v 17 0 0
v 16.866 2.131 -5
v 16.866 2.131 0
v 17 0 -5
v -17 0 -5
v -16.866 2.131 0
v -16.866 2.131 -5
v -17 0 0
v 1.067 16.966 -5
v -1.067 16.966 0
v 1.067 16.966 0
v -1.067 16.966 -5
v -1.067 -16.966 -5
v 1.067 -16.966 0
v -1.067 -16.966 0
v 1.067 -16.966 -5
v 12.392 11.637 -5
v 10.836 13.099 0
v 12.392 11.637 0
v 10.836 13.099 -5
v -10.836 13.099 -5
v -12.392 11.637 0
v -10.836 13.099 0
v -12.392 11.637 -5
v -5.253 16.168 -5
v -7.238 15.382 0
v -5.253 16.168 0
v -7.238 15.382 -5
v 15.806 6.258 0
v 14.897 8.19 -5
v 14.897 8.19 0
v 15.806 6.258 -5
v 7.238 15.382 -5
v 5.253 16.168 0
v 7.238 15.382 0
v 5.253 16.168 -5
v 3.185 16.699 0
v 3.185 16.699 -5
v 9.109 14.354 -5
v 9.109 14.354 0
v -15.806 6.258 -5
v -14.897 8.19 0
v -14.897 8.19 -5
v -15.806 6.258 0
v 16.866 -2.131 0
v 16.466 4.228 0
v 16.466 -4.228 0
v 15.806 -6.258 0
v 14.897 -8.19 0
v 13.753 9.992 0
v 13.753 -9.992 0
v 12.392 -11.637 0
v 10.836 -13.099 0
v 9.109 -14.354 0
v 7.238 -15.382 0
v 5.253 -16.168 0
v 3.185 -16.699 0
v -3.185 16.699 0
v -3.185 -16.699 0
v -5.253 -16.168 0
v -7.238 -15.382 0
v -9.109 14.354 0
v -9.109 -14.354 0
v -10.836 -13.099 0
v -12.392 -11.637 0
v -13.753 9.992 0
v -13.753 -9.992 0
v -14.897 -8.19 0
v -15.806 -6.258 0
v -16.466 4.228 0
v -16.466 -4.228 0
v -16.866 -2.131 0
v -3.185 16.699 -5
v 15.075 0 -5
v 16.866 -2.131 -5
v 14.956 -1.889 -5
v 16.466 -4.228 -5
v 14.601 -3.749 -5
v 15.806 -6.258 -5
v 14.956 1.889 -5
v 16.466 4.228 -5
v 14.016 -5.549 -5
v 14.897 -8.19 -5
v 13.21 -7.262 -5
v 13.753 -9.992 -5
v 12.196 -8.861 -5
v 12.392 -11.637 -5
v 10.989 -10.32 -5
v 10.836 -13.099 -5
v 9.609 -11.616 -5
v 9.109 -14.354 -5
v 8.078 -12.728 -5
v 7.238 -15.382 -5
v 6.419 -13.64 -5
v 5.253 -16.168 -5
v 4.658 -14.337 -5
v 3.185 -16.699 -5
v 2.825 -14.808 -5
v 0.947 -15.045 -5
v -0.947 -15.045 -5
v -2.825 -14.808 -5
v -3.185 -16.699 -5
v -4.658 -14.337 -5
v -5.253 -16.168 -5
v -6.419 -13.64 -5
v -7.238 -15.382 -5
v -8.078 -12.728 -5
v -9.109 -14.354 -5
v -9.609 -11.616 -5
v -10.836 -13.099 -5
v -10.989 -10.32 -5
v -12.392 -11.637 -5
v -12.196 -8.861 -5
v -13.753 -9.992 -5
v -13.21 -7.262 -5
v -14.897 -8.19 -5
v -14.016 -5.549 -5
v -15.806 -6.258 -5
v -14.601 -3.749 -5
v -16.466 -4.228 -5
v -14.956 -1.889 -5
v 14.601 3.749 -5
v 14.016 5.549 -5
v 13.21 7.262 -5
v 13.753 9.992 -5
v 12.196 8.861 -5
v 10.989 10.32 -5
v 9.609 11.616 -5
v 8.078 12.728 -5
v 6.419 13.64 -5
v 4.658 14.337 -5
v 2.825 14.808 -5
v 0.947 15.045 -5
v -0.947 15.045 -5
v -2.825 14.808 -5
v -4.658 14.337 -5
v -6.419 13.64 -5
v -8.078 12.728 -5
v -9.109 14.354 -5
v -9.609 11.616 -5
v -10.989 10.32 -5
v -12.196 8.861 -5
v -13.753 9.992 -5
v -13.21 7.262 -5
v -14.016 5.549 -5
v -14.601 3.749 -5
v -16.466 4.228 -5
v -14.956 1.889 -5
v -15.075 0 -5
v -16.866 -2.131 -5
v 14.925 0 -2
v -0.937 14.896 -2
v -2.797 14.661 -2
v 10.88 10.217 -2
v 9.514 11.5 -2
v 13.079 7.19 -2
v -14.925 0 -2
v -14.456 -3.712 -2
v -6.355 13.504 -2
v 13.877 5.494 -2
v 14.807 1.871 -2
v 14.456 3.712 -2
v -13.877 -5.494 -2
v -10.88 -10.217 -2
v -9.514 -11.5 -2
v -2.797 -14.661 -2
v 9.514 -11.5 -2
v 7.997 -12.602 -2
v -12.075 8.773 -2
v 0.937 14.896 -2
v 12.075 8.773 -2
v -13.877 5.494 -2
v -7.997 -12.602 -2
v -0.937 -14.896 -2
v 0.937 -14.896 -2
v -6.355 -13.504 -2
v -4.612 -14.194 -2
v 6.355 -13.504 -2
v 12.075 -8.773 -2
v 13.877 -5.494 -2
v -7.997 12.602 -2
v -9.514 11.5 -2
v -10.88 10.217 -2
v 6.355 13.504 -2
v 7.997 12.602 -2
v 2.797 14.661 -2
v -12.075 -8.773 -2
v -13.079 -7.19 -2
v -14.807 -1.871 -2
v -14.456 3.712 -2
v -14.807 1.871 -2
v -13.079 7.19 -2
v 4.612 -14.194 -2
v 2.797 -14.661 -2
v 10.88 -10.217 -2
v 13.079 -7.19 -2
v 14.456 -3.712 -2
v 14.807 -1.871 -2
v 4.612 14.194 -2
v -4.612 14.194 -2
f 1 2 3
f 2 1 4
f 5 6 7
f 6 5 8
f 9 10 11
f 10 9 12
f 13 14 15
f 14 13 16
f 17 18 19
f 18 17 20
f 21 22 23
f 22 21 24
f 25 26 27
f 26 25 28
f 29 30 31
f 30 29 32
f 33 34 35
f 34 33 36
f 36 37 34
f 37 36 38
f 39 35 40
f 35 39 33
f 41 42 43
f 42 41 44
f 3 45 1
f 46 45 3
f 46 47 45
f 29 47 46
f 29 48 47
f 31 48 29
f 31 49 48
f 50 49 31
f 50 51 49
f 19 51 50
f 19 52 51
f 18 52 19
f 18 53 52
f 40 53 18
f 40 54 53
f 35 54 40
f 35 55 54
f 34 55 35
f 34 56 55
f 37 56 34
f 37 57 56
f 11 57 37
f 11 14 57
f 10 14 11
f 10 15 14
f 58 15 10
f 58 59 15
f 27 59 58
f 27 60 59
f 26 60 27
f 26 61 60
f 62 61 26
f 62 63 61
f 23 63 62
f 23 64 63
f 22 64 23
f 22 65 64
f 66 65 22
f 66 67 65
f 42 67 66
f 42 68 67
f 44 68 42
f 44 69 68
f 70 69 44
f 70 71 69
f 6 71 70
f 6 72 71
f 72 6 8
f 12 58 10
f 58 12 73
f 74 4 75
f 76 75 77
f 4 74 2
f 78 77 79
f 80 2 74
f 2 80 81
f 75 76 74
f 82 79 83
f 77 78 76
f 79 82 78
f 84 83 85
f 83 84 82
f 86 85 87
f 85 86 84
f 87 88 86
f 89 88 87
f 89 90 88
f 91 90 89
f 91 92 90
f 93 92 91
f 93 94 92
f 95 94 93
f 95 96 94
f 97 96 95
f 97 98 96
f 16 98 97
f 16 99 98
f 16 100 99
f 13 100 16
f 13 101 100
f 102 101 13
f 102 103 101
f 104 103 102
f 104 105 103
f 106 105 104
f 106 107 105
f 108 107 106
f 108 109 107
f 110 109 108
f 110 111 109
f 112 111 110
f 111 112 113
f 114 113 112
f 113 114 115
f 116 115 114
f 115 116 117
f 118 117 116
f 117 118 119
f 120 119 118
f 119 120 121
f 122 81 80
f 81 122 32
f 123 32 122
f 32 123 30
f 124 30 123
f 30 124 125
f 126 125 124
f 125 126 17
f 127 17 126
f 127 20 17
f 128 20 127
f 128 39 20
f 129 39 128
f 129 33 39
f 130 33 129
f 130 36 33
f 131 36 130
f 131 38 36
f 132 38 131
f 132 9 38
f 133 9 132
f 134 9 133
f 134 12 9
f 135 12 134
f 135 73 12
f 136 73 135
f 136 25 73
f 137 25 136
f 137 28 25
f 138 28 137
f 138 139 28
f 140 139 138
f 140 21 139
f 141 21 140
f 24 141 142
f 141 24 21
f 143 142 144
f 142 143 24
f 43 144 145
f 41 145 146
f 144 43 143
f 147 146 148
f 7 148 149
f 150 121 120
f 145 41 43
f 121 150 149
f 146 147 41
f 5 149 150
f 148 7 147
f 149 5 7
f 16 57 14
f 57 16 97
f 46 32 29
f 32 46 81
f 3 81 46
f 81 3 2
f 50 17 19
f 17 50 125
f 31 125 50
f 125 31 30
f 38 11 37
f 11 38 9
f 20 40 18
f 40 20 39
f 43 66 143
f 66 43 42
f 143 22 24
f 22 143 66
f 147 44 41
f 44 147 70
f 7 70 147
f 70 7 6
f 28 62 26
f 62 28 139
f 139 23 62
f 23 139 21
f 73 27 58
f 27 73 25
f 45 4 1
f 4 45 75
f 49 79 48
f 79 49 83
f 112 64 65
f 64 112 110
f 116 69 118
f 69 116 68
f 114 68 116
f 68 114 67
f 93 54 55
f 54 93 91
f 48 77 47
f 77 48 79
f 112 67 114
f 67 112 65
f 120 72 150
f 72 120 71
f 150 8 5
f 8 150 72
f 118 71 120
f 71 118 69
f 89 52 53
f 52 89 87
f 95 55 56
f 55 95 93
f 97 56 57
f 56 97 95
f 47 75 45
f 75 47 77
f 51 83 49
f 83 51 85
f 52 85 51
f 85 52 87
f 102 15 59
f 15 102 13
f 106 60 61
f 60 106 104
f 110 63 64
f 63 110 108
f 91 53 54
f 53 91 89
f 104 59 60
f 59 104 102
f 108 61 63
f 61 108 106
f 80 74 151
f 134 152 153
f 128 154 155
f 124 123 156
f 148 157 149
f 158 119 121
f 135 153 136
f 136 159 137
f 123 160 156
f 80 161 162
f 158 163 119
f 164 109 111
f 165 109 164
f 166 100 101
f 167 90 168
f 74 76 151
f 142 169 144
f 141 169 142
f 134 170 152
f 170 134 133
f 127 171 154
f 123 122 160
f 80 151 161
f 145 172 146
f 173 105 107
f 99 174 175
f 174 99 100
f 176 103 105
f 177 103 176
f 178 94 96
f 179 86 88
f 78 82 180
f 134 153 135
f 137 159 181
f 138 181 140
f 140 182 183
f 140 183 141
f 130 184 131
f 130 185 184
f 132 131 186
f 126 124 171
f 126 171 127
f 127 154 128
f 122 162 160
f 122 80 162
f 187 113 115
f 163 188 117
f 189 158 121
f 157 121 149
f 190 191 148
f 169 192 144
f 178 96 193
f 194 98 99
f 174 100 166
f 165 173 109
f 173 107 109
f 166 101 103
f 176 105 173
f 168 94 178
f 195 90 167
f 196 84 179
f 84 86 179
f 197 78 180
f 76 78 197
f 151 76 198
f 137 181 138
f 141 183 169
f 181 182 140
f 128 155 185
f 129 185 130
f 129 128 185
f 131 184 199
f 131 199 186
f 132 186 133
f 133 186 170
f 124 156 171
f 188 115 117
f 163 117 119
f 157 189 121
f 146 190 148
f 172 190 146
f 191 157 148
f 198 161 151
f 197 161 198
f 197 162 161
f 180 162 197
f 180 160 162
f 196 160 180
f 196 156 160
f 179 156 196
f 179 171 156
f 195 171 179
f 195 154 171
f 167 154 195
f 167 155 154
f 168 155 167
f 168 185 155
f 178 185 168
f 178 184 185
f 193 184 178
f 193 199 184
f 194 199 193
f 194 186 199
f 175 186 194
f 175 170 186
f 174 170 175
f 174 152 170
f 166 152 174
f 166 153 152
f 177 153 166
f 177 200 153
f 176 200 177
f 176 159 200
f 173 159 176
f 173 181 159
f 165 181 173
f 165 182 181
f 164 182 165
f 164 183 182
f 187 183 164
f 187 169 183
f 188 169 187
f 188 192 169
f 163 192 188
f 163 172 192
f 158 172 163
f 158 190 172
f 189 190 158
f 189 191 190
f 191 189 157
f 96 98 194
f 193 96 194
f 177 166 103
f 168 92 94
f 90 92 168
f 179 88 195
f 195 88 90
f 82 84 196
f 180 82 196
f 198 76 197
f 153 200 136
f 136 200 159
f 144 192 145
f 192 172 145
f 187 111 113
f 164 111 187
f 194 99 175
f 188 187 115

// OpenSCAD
$fn = 50;

difference() {
	union() {
		translate(v = [0, 0, -5.0]) {
			cylinder(h = 5, r = 17.0);
		}
	}
	union() {
		#translate(v = [0, 0, -5.0]) {
			cylinder(h = 3, r1 = 15.075, r2 = 14.925);
		}
	}
}
